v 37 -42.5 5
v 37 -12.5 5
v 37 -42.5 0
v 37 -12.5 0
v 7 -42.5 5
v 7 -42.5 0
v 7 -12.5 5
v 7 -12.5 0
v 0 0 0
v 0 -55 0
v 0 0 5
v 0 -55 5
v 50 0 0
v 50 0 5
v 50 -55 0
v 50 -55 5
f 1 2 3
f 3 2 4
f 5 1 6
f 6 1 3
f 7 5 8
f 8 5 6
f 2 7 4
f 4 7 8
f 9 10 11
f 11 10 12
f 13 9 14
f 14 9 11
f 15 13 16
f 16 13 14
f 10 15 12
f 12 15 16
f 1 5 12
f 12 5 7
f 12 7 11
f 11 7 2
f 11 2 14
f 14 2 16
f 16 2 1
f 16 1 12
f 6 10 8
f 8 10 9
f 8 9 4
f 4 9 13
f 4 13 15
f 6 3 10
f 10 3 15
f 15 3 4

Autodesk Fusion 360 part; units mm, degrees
sketch "Sketch1" plane through (0, 0, 0) normal (0, 0, 1) x (1, 0, 0)
  line L0 (0, 0) -> (50, 0)
  line L1 (50, 0) -> (50, -55)
  line L2 (50, -55) -> (0, -55)
  line L3 (0, -55) -> (0, 0)
  line L4 (7, -12.5) -> (37, -12.5)
  line L5 (37, -12.5) -> (37, -42.5)
  line L6 (37, -42.5) -> (7, -42.5)
  line L7 (7, -42.5) -> (7, -12.5)
  dimension "d7" = 50
  dimension "d8" = 55
  dimension "d15" = 30
  dimension "d16" = 30
  dimension "d17" = 7
  dimension "d18" = 12.5
extrude "Extrude1" add sketch "Sketch1" along normal blind 5 contours L0 L1 L2 L3 | L4 L5 L6 L7
extrude "Extrude2" cut sketch "Sketch1" along normal blind 100 contours L4 L5 L6 L7
equation "perfboard_length = 35 mm"
equation "perfboard_width = 30 mm"
equation "width = perfboard_length + 2 * screw_radius * 2"
equation "length = perfboard_width + 2 * screw_radius * 2"
equation "height = 5 mm"
equation "d7 = length"
equation "d8 = width"
equation "d9 = height"
equation "middle_gap_width = 30 mm"
equation "middle_gap_length = length - 2 * screw_radius * 2"
equation "middle_gap_small_distance = 7 mm"
equation "middle_gap_big_distance = ( width - middle_gap_width ) / 2"
equation "d15 = middle_gap_length"
equation "d16 = middle_gap_width"
equation "d17 = middle_gap_small_distance"
equation "d18 = middle_gap_big_distance"
equation "extra = 100 mm"
equation "d20 = extra"
equation "screw_radius = 5 mm"
